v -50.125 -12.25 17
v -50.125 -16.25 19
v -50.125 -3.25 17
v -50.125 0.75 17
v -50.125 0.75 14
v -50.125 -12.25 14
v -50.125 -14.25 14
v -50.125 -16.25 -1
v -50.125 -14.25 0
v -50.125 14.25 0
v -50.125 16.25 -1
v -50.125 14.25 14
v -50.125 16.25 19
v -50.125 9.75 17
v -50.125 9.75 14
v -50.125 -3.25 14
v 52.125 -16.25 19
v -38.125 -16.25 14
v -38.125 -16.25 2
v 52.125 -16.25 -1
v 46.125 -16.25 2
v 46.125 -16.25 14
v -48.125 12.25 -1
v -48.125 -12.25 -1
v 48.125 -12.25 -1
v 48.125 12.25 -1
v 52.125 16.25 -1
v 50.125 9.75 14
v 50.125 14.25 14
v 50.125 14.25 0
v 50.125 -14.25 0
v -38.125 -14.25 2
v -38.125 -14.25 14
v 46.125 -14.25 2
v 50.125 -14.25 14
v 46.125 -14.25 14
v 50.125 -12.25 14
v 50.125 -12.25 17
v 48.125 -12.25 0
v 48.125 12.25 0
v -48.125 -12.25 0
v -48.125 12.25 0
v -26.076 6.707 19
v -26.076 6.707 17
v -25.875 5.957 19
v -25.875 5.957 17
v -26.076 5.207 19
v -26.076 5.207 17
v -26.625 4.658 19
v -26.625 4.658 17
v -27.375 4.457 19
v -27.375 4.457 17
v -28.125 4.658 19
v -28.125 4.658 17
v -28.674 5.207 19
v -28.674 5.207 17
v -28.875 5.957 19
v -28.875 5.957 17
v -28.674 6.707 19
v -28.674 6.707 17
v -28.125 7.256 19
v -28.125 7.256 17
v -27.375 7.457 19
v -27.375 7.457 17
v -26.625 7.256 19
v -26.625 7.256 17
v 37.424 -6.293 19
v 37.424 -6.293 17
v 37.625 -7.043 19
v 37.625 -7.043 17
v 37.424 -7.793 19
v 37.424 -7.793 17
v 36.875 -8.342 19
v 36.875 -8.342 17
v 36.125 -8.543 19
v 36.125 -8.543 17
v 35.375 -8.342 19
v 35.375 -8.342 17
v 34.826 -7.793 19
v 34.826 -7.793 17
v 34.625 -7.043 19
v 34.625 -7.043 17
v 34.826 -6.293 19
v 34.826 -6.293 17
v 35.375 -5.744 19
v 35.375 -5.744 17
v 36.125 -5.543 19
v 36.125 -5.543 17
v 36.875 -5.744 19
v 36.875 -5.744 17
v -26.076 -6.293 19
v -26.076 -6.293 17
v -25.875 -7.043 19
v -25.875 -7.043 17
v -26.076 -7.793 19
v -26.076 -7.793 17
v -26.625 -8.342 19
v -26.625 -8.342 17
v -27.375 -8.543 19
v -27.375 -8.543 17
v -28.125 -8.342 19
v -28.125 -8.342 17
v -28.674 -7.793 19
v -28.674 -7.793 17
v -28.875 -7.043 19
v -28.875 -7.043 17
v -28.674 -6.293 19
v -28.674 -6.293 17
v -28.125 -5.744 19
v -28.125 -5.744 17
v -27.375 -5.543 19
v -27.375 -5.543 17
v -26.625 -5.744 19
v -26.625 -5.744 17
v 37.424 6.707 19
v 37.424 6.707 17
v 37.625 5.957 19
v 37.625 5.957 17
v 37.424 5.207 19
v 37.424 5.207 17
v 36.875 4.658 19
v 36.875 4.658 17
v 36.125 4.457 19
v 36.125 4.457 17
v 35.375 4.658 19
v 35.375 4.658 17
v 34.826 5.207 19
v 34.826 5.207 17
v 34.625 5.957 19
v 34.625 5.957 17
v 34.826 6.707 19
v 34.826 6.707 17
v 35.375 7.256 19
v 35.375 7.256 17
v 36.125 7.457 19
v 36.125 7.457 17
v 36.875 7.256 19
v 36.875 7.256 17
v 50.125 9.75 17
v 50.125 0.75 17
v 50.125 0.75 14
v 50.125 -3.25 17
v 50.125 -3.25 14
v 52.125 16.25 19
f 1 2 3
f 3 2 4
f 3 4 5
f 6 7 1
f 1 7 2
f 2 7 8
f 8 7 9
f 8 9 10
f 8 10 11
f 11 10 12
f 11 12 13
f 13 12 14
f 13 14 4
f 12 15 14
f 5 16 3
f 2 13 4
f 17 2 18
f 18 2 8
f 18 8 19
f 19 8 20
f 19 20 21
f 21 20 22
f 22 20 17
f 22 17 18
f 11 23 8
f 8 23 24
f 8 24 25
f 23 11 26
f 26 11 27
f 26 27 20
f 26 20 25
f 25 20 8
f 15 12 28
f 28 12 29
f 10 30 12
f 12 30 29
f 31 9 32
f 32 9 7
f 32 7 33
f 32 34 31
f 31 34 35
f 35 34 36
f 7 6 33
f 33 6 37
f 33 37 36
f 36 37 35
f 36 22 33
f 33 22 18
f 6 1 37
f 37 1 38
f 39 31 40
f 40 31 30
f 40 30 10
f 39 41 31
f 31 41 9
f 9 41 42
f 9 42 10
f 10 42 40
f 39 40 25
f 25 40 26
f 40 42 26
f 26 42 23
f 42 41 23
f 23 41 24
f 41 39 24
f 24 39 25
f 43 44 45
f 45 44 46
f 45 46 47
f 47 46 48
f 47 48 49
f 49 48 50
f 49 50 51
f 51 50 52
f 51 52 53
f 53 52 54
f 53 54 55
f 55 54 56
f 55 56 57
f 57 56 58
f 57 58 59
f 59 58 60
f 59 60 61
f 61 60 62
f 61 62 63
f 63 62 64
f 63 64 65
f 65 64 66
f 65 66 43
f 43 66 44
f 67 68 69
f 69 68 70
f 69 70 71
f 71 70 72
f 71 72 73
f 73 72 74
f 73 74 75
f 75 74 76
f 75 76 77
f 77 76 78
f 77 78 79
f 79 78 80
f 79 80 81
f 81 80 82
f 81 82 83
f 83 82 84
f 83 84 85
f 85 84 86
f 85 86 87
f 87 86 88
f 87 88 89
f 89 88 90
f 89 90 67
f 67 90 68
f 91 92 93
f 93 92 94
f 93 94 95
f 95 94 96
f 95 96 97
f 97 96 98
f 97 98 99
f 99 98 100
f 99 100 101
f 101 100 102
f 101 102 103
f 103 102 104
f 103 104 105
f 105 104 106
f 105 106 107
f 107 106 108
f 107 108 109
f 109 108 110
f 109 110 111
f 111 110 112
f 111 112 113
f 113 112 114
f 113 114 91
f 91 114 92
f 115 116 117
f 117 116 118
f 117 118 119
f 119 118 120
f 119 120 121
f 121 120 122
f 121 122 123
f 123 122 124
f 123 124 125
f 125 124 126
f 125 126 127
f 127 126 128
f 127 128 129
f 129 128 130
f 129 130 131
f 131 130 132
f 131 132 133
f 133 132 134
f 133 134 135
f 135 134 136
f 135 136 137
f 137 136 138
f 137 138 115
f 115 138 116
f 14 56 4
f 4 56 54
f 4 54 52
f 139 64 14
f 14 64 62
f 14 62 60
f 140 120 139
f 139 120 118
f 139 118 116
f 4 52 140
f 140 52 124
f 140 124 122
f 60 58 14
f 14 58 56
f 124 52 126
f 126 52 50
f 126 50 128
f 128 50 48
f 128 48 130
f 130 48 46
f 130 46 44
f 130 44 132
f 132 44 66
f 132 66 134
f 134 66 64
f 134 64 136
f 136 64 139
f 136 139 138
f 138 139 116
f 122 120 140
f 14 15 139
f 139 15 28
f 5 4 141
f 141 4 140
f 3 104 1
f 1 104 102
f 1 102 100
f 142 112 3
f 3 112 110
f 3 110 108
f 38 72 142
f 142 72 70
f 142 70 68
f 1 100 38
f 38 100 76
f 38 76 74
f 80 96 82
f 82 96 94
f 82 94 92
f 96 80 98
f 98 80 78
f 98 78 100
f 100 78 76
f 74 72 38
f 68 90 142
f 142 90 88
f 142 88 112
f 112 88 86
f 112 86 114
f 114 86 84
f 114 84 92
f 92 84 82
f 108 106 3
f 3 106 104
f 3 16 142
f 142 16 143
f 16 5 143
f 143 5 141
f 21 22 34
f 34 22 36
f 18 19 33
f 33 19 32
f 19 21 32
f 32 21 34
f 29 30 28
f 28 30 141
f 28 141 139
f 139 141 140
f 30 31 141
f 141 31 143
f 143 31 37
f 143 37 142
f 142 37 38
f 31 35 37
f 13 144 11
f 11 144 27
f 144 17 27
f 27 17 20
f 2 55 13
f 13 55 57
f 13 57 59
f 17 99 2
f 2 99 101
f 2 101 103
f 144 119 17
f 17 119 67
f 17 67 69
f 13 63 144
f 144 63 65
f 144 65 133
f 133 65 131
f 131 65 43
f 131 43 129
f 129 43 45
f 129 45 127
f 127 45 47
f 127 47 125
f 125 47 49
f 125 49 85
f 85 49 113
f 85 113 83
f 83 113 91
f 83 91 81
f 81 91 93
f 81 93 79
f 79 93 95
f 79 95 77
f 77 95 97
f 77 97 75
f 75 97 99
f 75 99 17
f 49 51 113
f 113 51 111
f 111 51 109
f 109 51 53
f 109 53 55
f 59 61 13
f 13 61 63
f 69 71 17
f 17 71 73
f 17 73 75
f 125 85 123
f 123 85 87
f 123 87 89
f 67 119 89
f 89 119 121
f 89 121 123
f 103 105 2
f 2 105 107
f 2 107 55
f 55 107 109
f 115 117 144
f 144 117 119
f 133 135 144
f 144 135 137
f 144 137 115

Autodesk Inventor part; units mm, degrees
ref_plane "YZ Plane" through (0, 0, 0) normal (1, 0, 0) x (0, 1, 0)
ref_plane "XZ Plane" through (0, 0, 0) normal (0, 1, 0) x (-1, 0, 0)
ref_plane "XY Plane" through (0, 0, 0) normal (0, 0, 1) x (1, 0, 0)
sketch "スケッチ1" plane through (0, 0, 0) normal (0, 0, 1) x (1, 0, 0)
  line L0 (52.125, -16.25) -> (-52.125, -16.25)
  line L1 (-52.125, -16.25) -> (-52.125, 16.25)
  line L2 (-52.125, 16.25) -> (52.125, 16.25)
  line L3 (52.125, 16.25) -> (52.125, -16.25)
  line L4 (52.125, -16.25) -> (-52.125, 16.25) construction
  line L5 (-52.125, -16.25) -> (52.125, 16.25) construction
  point P0 (0, 0)
  dimension "d0" = 104.25
  dimension "d1" = 32.5
extrude "枠" add sketch "スケッチ1" along normal blind 19
sketch "スケッチ2" plane through (0, 0, 0) normal (0, 0, -1) x (-1, 0, 0)
  line L0 (50.125, -14.25) -> (-50.125, -14.25)
  line L1 (-50.125, -14.25) -> (-50.125, 14.25)
  line L2 (-50.125, 14.25) -> (50.125, 14.25)
  line L3 (50.125, 14.25) -> (50.125, -14.25)
  line L4 (50.125, -14.25) -> (-50.125, 14.25) construction
  line L5 (-50.125, -14.25) -> (50.125, 14.25) construction
  point P0 (0, 0)
  dimension "d4" = 100.25
  dimension "d5" = 28.5
extrude "本体" cut sketch "スケッチ2" against normal blind 12
sketch "スケッチ3" plane through (-52.125, -16.25, 0) normal (-1, 0, 0) x (0, 0, 1)
  line L0 (2, 2) -> (14, 2)
  line L1 (14, 2) -> (14, 30.5)
  line L2 (14, 30.5) -> (2, 30.5)
  line L3 (2, 30.5) -> (2, 2)
  line L4 (19, 32.5) -> (19, 0) projected
  line L5 (0, 0) -> (19, 0) projected
  line L6 (0, 0) -> (0, 32.5) projected
  line L7 (0, 32.5) -> (19, 32.5) projected
  point P0 (0, 16.25)
  dimension "d8" = 5
  dimension "d9" = 28.5
  dimension "d10" = 2
  dimension "d11" = 12
  dimension "d12" = 2
  dimension "d13" = 2
extrude "入口" cut sketch "スケッチ3" against normal blind 102.25 contours L3 L2 L1 L0
sketch "スケッチ4" plane through (-52.125, -16.25, 0) normal (0, -1, 0) x (1, 0, 0)
  line L0 (98.25, 2) -> (14, 2)
  line L1 (14, 2) -> (14, 14)
  line L2 (14, 14) -> (98.25, 14)
  line L3 (98.25, 14) -> (98.25, 2)
  line L4 (104.25, 0) -> (104.25, 19) projected
  line L5 (0, 0) -> (0, 19) projected
  line L6 (0, 19) -> (104.25, 19) projected
  line L7 (104.25, 0) -> (0, 0) projected
  point P0 (52.125, 0)
  dimension "d16" = 6
  dimension "d17" = 14
  dimension "d18" = 5
  dimension "d19" = 2
extrude "USB穴" cut sketch "スケッチ4" against normal blind 2 contours L0 L1 L2 L3
sketch "スケッチ6" plane through (-52.125, -16.25, 0) normal (-1, 0, 0) x (0, 0, 1)
  line L0 (14, 30.5) -> (14, 2) projected
  line L1 (14, 4) -> (17, 4)
  line L2 (17, 4) -> (17, 13)
  line L3 (17, 13) -> (14, 13)
  line L4 (14, 13) -> (14, 4)
  line L5 (14, 17) -> (17, 17)
  line L6 (17, 17) -> (17, 26)
  line L7 (17, 26) -> (14, 26)
  line L8 (14, 26) -> (14, 17)
  line L9 (14, 2) -> (2, 2) projected
  point P0 (0, 16.25)
  dimension "d22" = 9
  dimension "d23" = 9
  dimension "d24" = 3
  dimension "d25" = 2
  dimension "d26" = 4
extrude "ネジ溝" cut sketch "スケッチ6" against normal blind 102.25
sketch "スケッチ7" plane through (-52.125, -12.25, 17) normal (0, 0, -1) x (-1, 0, 0)
  line L0 (-88.25, 5.2069) -> (-24.75, 5.2069)
  line L1 (-24.75, 5.2069) -> (-24.75, 18.2069)
  line L2 (-24.75, 18.2069) -> (-88.25, 18.2069)
  line L3 (-88.25, 18.2069) -> (-88.25, 5.2069)
  line L4 (-104.25, 28.5) -> (-104.25, -4) projected
  point P0 (-52.125, 12.25)
  dimension "d29" = 13
  dimension "d30" = 63.5
  dimension "d31" = 16
hole "穴1" at (36.125, -7.0431, 17) at (-27.375, -7.0431, 17) at (-27.375, 5.9569, 17) at (36.125, 5.9569, 17) direction (0, 0, 1) diameter 3 depth 8 tip angle 118
sketch "スケッチ10" plane through (0, 0, 0) normal (0, 0, -1) x (-1, 0, 0)
  line L0 (52.125, -16.25) -> (-52.125, -16.25) projected
  line L1 (-52.125, -16.25) -> (52.125, -16.25)
  line L2 (52.125, -14.25) -> (38.125, -14.25) projected
  line L3 (52.125, 16.25) -> (52.125, -16.25) projected
  line L4 (52.125, -16.25) -> (52.125, 16.25)
  line L5 (-52.125, 16.25) -> (52.125, 16.25) projected
  line L6 (52.125, 16.25) -> (-52.125, 16.25)
  line L7 (-52.125, -16.25) -> (-52.125, 16.25) projected
  line L8 (-52.125, 16.25) -> (-52.125, -16.25)
  line L9 (-48.125, -12.25) -> (48.125, -12.25)
  line L10 (50.125, -14.25) -> (-50.125, -14.25) projected
  line L11 (48.125, -12.25) -> (48.125, 12.25)
  line L12 (48.125, 12.25) -> (-48.125, 12.25)
  line L13 (-48.125, 12.25) -> (-48.125, -12.25)
  point P0 (0, 0)
  dimension "d40" = 4
  dimension "d41" = 4
  dimension "d42" = 4
  dimension "d43" = 4
extrude "蓋" add sketch "スケッチ10" along normal blind 1
sketch "スケッチ13" plane through (-52.125, -16.25, 19) normal (-1, 0, 0) x (0, 0, 1)
  line L0 (0, 0) -> (-20, 0) projected
  line L1 (0, 32.5) -> (0, 0) projected
  line L2 (-20, 0) -> (0, 0)
  line L3 (0, 0) -> (0, 32.5)
  line L4 (0, 32.5) -> (-20, 32.5)
  line L5 (-20, 32.5) -> (-20, 0)
  point P0 (-19, 16.25)
extrude "調整" cut sketch "スケッチ13" against normal blind 2
properties part number "usbhub_holder_new"
